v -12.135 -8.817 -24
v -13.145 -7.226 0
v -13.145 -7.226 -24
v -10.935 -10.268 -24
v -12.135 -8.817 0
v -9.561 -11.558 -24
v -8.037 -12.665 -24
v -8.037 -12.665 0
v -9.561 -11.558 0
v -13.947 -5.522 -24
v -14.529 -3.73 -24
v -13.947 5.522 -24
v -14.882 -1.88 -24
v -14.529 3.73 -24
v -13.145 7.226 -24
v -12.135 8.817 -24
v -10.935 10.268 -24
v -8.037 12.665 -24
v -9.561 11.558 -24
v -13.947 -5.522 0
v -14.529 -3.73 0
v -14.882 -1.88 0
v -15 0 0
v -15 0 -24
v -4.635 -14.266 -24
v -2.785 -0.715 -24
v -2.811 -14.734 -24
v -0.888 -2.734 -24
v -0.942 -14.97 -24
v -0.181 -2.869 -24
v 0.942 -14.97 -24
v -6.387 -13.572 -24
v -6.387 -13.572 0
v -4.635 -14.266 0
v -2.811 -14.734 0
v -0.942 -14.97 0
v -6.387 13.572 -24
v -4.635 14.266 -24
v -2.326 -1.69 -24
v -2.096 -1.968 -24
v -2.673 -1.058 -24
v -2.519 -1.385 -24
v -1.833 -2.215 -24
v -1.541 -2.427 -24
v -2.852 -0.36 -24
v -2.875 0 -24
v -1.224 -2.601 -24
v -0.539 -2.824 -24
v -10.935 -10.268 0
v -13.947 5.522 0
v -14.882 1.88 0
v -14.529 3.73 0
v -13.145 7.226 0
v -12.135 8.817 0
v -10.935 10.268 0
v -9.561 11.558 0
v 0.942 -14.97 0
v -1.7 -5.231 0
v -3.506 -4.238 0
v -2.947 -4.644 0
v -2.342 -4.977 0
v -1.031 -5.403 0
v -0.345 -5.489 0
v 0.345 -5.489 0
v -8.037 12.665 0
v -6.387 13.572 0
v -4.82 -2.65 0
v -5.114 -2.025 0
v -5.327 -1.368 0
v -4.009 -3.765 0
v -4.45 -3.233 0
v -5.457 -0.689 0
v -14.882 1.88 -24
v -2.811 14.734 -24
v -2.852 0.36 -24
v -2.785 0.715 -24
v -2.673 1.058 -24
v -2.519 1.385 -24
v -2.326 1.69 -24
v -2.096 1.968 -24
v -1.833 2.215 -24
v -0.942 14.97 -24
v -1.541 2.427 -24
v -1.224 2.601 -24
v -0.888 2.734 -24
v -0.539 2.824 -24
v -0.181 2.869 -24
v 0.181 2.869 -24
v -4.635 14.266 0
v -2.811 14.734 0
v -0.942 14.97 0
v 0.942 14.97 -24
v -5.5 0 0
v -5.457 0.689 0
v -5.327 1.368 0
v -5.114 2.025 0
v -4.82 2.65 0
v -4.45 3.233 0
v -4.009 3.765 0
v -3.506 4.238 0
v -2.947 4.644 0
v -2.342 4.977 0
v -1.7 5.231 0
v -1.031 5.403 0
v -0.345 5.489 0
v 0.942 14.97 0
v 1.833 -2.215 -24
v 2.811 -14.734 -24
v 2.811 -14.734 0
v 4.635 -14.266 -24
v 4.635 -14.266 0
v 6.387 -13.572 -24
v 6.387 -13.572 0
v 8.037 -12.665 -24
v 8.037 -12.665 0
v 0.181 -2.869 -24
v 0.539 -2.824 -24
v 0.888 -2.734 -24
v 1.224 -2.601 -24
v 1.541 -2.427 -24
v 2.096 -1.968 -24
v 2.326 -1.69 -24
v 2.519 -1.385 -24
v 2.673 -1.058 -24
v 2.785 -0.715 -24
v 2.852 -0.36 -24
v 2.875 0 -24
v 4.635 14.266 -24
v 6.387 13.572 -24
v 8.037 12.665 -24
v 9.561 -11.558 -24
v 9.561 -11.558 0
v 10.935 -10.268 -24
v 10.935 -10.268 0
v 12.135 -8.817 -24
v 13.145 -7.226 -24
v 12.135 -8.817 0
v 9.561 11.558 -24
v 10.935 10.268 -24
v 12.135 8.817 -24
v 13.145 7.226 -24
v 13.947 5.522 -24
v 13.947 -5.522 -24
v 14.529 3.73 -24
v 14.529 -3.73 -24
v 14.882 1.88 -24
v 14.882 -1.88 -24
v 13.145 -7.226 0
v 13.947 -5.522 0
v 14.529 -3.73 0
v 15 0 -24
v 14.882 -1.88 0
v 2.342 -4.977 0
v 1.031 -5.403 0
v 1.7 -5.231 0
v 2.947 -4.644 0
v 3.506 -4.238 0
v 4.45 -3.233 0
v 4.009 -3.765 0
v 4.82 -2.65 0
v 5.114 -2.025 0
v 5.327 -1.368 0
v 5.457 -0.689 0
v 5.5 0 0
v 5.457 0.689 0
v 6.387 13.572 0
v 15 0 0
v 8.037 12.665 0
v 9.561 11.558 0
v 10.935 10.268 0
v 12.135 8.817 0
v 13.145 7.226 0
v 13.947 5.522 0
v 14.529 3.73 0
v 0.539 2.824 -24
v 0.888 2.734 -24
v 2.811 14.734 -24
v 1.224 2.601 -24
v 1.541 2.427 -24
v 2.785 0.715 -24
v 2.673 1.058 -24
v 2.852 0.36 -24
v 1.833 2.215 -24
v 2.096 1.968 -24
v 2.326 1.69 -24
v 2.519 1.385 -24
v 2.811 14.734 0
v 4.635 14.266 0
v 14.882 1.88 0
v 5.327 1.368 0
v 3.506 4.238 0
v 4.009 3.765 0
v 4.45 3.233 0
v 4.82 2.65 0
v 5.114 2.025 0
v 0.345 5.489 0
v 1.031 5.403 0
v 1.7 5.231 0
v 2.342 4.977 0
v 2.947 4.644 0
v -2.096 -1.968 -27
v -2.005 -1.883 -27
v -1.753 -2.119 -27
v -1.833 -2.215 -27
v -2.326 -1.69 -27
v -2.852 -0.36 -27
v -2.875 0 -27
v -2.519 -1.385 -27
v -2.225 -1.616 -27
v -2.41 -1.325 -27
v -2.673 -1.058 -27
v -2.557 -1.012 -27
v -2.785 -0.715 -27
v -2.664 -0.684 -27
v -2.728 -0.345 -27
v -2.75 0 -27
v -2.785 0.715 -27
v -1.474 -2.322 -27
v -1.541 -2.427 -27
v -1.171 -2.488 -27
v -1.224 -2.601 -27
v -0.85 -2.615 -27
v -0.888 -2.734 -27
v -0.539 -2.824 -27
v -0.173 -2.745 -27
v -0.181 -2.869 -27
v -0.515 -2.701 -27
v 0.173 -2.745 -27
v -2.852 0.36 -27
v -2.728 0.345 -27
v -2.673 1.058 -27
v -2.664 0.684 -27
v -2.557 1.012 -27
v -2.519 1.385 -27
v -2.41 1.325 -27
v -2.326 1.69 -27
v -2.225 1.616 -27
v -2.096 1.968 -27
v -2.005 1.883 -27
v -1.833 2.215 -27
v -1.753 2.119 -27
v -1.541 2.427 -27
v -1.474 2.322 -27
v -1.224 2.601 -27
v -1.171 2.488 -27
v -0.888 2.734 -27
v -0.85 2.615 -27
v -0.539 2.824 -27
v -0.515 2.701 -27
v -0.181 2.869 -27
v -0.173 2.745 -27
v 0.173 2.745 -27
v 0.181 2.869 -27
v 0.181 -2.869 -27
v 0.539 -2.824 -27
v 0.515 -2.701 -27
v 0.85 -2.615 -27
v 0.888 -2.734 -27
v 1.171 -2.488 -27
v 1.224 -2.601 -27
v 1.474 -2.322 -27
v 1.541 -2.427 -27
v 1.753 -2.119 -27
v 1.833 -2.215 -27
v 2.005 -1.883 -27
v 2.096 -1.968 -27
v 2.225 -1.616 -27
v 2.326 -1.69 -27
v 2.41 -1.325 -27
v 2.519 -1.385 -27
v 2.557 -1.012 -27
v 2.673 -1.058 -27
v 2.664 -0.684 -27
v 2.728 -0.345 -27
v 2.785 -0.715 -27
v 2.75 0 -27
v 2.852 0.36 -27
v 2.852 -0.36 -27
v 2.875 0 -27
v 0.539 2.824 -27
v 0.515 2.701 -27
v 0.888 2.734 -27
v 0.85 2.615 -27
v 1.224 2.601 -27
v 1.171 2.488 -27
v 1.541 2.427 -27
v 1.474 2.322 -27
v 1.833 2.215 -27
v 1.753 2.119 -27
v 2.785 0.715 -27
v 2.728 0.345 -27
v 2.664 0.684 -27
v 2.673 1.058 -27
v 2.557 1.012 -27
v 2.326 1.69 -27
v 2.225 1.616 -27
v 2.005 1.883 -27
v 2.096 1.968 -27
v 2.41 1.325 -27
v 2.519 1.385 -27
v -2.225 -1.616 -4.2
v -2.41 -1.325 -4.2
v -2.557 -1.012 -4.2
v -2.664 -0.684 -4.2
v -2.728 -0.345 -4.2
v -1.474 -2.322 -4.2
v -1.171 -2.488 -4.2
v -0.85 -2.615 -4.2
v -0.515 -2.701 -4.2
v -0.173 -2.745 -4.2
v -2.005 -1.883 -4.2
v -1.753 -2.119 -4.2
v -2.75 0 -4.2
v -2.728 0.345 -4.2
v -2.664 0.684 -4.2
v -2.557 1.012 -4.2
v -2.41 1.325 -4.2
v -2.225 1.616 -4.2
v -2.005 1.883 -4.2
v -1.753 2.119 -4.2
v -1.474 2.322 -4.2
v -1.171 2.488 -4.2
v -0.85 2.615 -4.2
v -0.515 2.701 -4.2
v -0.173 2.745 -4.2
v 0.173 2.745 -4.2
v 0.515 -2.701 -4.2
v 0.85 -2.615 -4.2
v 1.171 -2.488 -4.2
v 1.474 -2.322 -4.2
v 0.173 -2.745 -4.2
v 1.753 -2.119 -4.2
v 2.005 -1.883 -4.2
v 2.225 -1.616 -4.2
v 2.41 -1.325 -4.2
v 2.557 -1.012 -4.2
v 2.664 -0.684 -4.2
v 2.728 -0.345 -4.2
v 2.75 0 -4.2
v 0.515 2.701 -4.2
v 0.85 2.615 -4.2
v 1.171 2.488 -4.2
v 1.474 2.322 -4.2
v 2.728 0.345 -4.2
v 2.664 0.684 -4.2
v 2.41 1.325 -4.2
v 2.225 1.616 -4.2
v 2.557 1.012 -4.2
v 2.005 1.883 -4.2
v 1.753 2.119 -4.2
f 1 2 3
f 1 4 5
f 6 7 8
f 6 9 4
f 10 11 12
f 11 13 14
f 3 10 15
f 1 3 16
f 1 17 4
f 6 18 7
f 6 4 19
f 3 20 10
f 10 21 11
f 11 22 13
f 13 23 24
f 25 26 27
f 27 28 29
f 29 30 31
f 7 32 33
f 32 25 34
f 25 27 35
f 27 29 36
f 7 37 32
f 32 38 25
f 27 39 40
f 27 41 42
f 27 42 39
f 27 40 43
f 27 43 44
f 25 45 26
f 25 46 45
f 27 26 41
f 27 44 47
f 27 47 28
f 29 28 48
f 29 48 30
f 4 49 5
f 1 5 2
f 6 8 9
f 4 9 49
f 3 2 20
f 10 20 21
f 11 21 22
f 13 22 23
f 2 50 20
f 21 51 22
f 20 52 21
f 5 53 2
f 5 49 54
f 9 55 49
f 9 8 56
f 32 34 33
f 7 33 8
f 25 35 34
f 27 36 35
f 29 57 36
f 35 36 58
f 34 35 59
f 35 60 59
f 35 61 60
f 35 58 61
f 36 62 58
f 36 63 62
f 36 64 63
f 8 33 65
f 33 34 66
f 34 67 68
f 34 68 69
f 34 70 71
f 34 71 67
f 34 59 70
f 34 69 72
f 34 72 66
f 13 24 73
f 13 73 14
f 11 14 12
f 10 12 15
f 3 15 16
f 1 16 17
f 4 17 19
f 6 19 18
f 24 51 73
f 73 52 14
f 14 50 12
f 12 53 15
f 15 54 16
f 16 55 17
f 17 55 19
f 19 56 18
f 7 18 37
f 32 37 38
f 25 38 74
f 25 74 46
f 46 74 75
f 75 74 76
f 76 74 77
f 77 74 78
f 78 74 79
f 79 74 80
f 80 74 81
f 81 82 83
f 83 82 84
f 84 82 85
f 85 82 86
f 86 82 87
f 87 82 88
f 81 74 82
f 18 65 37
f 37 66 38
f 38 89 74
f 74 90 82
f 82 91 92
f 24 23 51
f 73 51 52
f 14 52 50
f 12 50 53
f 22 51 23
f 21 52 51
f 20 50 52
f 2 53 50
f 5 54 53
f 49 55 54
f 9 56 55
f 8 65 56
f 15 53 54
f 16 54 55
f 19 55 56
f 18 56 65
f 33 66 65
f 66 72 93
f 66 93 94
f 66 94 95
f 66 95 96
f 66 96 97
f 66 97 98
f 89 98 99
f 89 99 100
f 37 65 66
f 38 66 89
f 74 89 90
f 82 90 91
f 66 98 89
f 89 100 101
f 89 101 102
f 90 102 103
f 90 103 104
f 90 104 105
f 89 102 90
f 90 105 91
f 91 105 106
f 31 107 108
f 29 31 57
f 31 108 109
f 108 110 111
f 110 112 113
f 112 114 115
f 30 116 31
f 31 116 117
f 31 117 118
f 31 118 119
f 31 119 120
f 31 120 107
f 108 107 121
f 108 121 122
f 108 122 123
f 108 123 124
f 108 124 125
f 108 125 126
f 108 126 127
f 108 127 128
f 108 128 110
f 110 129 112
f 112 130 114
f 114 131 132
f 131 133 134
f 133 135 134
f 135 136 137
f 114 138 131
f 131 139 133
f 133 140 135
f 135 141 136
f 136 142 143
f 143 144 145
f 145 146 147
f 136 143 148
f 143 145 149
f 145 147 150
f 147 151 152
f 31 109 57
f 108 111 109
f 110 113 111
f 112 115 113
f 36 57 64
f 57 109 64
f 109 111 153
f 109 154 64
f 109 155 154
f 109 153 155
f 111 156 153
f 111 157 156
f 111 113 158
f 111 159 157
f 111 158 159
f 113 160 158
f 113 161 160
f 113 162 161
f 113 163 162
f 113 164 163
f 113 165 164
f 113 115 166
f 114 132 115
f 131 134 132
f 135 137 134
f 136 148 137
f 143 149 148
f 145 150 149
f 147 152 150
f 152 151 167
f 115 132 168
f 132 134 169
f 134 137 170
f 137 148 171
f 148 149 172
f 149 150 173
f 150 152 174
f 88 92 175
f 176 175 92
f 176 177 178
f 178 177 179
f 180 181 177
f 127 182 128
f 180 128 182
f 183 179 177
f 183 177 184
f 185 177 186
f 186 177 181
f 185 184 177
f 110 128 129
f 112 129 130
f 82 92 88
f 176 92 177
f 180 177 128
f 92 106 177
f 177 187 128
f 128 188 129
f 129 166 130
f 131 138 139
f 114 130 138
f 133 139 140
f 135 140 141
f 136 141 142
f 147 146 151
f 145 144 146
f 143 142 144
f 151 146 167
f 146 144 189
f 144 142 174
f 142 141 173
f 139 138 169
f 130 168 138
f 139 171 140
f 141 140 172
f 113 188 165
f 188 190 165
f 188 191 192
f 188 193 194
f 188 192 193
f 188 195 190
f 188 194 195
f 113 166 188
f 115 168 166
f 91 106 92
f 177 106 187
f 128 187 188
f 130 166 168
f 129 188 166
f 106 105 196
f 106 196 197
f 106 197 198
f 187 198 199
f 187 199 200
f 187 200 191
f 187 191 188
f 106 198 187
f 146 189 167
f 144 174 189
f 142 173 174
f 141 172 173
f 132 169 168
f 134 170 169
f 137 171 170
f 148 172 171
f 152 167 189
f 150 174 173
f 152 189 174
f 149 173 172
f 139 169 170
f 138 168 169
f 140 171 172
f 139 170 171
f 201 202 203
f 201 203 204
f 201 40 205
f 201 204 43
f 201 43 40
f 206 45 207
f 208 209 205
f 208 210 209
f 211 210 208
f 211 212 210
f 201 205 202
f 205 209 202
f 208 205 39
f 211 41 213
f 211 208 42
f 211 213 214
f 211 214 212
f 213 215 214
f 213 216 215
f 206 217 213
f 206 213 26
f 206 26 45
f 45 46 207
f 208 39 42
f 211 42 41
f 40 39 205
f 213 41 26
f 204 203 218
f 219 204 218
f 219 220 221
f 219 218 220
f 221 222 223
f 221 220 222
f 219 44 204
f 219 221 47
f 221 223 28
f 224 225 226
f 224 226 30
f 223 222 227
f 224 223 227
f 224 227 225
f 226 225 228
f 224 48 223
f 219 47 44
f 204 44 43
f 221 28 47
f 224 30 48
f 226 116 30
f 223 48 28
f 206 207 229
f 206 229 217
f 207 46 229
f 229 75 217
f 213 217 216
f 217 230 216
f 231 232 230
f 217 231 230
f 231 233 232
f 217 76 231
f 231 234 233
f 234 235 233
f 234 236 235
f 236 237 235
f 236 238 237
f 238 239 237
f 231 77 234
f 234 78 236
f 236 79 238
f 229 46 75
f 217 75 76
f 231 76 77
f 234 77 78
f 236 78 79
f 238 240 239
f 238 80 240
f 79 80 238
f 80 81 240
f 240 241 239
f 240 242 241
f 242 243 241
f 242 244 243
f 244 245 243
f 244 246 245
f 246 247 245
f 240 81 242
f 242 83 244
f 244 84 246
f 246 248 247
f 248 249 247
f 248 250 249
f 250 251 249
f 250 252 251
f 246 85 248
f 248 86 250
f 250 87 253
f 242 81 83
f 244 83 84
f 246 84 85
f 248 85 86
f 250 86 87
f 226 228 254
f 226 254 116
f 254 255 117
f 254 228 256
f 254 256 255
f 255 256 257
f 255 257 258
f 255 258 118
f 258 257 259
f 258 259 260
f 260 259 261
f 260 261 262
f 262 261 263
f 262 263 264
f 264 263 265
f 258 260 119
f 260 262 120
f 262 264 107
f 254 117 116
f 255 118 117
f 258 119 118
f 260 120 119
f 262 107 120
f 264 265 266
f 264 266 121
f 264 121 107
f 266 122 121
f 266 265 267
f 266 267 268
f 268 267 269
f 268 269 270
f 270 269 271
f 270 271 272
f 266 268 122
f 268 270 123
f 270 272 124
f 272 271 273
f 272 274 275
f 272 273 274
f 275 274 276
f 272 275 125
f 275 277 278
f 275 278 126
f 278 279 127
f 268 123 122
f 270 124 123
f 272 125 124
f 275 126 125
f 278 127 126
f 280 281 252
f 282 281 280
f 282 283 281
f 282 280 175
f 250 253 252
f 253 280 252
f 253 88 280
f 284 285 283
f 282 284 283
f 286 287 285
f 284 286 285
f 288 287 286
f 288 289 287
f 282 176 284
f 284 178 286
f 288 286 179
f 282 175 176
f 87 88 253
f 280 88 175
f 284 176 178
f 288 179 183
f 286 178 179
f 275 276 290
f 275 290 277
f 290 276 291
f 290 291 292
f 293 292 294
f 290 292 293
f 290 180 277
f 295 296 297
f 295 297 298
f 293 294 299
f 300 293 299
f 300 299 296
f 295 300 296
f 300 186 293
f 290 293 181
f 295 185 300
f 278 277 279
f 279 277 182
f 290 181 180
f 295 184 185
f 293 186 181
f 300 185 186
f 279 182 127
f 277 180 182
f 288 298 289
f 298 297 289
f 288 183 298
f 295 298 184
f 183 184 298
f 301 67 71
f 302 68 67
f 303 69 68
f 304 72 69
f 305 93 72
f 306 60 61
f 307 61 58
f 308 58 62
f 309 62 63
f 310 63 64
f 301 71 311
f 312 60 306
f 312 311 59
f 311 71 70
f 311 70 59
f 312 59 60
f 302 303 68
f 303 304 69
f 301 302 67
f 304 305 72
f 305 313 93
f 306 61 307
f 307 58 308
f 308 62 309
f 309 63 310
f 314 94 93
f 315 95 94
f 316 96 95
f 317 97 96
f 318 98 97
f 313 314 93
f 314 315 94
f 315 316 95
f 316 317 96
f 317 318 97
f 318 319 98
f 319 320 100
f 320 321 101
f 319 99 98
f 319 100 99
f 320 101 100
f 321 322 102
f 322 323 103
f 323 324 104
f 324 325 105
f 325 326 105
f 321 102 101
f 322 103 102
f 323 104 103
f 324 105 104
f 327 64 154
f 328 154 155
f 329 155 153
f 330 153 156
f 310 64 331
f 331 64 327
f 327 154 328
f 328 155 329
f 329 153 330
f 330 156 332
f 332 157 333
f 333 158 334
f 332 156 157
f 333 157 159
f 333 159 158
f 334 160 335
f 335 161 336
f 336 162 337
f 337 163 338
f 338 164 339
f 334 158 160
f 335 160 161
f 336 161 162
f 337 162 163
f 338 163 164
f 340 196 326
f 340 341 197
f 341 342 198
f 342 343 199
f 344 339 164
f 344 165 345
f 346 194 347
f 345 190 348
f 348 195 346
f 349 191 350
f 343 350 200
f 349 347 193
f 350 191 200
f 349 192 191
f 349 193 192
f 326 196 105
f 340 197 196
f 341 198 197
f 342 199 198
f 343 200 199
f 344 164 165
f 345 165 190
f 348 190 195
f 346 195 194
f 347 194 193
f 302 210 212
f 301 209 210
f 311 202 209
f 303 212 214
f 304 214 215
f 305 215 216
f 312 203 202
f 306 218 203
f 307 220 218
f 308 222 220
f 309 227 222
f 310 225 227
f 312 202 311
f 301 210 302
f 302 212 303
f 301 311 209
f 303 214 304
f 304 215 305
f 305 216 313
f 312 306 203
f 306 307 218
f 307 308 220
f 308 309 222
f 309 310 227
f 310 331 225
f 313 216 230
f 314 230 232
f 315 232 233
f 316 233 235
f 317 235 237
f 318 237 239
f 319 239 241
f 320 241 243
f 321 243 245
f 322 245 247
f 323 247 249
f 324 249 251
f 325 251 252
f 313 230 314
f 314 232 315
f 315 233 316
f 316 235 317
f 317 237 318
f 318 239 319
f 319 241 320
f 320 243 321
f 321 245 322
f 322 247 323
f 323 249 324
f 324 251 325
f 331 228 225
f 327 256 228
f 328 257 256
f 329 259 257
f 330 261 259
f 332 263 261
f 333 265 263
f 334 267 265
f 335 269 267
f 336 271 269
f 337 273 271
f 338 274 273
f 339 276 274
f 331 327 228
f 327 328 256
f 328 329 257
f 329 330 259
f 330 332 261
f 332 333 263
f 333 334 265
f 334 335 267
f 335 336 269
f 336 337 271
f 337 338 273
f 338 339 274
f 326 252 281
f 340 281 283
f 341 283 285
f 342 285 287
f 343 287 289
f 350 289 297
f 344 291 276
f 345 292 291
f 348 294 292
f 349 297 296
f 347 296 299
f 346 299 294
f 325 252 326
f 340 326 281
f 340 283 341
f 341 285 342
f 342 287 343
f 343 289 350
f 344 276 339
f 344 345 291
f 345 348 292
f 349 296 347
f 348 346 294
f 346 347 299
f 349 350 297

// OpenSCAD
$fn = 50;


difference() {
	union() {
		translate(v = [0, 0, -24.0000000000]) {
			cylinder(h = 24, r = 15.0000000000);
		}
		#translate(v = [0, 0, -27.0000000000]) {
			cylinder(h = 27, r = 2.8750000000);
		}
	}
	union() {
		translate(v = [0, 0, 0]) {
			rotate(a = [0, 0, 0]) {
				difference() {
					union() {
						translate(v = [0, 0, -27.0000000000]) {
							cylinder(h = 27, r = 2.2500000000);
						}
						translate(v = [0, 0, -4.2000000000]) {
							cylinder(h = 4.2000000000, r1 = 2.7500000000, r2 = 5.5000000000);
						}
						translate(v = [0, 0, -27.0000000000]) {
							cylinder(h = 27, r = 2.7500000000);
						}
						translate(v = [0, 0, -27.0000000000]) {
							cylinder(h = 27, r = 2.2500000000);
						}
					}
					union();
				}
			}
		}
	}
}
